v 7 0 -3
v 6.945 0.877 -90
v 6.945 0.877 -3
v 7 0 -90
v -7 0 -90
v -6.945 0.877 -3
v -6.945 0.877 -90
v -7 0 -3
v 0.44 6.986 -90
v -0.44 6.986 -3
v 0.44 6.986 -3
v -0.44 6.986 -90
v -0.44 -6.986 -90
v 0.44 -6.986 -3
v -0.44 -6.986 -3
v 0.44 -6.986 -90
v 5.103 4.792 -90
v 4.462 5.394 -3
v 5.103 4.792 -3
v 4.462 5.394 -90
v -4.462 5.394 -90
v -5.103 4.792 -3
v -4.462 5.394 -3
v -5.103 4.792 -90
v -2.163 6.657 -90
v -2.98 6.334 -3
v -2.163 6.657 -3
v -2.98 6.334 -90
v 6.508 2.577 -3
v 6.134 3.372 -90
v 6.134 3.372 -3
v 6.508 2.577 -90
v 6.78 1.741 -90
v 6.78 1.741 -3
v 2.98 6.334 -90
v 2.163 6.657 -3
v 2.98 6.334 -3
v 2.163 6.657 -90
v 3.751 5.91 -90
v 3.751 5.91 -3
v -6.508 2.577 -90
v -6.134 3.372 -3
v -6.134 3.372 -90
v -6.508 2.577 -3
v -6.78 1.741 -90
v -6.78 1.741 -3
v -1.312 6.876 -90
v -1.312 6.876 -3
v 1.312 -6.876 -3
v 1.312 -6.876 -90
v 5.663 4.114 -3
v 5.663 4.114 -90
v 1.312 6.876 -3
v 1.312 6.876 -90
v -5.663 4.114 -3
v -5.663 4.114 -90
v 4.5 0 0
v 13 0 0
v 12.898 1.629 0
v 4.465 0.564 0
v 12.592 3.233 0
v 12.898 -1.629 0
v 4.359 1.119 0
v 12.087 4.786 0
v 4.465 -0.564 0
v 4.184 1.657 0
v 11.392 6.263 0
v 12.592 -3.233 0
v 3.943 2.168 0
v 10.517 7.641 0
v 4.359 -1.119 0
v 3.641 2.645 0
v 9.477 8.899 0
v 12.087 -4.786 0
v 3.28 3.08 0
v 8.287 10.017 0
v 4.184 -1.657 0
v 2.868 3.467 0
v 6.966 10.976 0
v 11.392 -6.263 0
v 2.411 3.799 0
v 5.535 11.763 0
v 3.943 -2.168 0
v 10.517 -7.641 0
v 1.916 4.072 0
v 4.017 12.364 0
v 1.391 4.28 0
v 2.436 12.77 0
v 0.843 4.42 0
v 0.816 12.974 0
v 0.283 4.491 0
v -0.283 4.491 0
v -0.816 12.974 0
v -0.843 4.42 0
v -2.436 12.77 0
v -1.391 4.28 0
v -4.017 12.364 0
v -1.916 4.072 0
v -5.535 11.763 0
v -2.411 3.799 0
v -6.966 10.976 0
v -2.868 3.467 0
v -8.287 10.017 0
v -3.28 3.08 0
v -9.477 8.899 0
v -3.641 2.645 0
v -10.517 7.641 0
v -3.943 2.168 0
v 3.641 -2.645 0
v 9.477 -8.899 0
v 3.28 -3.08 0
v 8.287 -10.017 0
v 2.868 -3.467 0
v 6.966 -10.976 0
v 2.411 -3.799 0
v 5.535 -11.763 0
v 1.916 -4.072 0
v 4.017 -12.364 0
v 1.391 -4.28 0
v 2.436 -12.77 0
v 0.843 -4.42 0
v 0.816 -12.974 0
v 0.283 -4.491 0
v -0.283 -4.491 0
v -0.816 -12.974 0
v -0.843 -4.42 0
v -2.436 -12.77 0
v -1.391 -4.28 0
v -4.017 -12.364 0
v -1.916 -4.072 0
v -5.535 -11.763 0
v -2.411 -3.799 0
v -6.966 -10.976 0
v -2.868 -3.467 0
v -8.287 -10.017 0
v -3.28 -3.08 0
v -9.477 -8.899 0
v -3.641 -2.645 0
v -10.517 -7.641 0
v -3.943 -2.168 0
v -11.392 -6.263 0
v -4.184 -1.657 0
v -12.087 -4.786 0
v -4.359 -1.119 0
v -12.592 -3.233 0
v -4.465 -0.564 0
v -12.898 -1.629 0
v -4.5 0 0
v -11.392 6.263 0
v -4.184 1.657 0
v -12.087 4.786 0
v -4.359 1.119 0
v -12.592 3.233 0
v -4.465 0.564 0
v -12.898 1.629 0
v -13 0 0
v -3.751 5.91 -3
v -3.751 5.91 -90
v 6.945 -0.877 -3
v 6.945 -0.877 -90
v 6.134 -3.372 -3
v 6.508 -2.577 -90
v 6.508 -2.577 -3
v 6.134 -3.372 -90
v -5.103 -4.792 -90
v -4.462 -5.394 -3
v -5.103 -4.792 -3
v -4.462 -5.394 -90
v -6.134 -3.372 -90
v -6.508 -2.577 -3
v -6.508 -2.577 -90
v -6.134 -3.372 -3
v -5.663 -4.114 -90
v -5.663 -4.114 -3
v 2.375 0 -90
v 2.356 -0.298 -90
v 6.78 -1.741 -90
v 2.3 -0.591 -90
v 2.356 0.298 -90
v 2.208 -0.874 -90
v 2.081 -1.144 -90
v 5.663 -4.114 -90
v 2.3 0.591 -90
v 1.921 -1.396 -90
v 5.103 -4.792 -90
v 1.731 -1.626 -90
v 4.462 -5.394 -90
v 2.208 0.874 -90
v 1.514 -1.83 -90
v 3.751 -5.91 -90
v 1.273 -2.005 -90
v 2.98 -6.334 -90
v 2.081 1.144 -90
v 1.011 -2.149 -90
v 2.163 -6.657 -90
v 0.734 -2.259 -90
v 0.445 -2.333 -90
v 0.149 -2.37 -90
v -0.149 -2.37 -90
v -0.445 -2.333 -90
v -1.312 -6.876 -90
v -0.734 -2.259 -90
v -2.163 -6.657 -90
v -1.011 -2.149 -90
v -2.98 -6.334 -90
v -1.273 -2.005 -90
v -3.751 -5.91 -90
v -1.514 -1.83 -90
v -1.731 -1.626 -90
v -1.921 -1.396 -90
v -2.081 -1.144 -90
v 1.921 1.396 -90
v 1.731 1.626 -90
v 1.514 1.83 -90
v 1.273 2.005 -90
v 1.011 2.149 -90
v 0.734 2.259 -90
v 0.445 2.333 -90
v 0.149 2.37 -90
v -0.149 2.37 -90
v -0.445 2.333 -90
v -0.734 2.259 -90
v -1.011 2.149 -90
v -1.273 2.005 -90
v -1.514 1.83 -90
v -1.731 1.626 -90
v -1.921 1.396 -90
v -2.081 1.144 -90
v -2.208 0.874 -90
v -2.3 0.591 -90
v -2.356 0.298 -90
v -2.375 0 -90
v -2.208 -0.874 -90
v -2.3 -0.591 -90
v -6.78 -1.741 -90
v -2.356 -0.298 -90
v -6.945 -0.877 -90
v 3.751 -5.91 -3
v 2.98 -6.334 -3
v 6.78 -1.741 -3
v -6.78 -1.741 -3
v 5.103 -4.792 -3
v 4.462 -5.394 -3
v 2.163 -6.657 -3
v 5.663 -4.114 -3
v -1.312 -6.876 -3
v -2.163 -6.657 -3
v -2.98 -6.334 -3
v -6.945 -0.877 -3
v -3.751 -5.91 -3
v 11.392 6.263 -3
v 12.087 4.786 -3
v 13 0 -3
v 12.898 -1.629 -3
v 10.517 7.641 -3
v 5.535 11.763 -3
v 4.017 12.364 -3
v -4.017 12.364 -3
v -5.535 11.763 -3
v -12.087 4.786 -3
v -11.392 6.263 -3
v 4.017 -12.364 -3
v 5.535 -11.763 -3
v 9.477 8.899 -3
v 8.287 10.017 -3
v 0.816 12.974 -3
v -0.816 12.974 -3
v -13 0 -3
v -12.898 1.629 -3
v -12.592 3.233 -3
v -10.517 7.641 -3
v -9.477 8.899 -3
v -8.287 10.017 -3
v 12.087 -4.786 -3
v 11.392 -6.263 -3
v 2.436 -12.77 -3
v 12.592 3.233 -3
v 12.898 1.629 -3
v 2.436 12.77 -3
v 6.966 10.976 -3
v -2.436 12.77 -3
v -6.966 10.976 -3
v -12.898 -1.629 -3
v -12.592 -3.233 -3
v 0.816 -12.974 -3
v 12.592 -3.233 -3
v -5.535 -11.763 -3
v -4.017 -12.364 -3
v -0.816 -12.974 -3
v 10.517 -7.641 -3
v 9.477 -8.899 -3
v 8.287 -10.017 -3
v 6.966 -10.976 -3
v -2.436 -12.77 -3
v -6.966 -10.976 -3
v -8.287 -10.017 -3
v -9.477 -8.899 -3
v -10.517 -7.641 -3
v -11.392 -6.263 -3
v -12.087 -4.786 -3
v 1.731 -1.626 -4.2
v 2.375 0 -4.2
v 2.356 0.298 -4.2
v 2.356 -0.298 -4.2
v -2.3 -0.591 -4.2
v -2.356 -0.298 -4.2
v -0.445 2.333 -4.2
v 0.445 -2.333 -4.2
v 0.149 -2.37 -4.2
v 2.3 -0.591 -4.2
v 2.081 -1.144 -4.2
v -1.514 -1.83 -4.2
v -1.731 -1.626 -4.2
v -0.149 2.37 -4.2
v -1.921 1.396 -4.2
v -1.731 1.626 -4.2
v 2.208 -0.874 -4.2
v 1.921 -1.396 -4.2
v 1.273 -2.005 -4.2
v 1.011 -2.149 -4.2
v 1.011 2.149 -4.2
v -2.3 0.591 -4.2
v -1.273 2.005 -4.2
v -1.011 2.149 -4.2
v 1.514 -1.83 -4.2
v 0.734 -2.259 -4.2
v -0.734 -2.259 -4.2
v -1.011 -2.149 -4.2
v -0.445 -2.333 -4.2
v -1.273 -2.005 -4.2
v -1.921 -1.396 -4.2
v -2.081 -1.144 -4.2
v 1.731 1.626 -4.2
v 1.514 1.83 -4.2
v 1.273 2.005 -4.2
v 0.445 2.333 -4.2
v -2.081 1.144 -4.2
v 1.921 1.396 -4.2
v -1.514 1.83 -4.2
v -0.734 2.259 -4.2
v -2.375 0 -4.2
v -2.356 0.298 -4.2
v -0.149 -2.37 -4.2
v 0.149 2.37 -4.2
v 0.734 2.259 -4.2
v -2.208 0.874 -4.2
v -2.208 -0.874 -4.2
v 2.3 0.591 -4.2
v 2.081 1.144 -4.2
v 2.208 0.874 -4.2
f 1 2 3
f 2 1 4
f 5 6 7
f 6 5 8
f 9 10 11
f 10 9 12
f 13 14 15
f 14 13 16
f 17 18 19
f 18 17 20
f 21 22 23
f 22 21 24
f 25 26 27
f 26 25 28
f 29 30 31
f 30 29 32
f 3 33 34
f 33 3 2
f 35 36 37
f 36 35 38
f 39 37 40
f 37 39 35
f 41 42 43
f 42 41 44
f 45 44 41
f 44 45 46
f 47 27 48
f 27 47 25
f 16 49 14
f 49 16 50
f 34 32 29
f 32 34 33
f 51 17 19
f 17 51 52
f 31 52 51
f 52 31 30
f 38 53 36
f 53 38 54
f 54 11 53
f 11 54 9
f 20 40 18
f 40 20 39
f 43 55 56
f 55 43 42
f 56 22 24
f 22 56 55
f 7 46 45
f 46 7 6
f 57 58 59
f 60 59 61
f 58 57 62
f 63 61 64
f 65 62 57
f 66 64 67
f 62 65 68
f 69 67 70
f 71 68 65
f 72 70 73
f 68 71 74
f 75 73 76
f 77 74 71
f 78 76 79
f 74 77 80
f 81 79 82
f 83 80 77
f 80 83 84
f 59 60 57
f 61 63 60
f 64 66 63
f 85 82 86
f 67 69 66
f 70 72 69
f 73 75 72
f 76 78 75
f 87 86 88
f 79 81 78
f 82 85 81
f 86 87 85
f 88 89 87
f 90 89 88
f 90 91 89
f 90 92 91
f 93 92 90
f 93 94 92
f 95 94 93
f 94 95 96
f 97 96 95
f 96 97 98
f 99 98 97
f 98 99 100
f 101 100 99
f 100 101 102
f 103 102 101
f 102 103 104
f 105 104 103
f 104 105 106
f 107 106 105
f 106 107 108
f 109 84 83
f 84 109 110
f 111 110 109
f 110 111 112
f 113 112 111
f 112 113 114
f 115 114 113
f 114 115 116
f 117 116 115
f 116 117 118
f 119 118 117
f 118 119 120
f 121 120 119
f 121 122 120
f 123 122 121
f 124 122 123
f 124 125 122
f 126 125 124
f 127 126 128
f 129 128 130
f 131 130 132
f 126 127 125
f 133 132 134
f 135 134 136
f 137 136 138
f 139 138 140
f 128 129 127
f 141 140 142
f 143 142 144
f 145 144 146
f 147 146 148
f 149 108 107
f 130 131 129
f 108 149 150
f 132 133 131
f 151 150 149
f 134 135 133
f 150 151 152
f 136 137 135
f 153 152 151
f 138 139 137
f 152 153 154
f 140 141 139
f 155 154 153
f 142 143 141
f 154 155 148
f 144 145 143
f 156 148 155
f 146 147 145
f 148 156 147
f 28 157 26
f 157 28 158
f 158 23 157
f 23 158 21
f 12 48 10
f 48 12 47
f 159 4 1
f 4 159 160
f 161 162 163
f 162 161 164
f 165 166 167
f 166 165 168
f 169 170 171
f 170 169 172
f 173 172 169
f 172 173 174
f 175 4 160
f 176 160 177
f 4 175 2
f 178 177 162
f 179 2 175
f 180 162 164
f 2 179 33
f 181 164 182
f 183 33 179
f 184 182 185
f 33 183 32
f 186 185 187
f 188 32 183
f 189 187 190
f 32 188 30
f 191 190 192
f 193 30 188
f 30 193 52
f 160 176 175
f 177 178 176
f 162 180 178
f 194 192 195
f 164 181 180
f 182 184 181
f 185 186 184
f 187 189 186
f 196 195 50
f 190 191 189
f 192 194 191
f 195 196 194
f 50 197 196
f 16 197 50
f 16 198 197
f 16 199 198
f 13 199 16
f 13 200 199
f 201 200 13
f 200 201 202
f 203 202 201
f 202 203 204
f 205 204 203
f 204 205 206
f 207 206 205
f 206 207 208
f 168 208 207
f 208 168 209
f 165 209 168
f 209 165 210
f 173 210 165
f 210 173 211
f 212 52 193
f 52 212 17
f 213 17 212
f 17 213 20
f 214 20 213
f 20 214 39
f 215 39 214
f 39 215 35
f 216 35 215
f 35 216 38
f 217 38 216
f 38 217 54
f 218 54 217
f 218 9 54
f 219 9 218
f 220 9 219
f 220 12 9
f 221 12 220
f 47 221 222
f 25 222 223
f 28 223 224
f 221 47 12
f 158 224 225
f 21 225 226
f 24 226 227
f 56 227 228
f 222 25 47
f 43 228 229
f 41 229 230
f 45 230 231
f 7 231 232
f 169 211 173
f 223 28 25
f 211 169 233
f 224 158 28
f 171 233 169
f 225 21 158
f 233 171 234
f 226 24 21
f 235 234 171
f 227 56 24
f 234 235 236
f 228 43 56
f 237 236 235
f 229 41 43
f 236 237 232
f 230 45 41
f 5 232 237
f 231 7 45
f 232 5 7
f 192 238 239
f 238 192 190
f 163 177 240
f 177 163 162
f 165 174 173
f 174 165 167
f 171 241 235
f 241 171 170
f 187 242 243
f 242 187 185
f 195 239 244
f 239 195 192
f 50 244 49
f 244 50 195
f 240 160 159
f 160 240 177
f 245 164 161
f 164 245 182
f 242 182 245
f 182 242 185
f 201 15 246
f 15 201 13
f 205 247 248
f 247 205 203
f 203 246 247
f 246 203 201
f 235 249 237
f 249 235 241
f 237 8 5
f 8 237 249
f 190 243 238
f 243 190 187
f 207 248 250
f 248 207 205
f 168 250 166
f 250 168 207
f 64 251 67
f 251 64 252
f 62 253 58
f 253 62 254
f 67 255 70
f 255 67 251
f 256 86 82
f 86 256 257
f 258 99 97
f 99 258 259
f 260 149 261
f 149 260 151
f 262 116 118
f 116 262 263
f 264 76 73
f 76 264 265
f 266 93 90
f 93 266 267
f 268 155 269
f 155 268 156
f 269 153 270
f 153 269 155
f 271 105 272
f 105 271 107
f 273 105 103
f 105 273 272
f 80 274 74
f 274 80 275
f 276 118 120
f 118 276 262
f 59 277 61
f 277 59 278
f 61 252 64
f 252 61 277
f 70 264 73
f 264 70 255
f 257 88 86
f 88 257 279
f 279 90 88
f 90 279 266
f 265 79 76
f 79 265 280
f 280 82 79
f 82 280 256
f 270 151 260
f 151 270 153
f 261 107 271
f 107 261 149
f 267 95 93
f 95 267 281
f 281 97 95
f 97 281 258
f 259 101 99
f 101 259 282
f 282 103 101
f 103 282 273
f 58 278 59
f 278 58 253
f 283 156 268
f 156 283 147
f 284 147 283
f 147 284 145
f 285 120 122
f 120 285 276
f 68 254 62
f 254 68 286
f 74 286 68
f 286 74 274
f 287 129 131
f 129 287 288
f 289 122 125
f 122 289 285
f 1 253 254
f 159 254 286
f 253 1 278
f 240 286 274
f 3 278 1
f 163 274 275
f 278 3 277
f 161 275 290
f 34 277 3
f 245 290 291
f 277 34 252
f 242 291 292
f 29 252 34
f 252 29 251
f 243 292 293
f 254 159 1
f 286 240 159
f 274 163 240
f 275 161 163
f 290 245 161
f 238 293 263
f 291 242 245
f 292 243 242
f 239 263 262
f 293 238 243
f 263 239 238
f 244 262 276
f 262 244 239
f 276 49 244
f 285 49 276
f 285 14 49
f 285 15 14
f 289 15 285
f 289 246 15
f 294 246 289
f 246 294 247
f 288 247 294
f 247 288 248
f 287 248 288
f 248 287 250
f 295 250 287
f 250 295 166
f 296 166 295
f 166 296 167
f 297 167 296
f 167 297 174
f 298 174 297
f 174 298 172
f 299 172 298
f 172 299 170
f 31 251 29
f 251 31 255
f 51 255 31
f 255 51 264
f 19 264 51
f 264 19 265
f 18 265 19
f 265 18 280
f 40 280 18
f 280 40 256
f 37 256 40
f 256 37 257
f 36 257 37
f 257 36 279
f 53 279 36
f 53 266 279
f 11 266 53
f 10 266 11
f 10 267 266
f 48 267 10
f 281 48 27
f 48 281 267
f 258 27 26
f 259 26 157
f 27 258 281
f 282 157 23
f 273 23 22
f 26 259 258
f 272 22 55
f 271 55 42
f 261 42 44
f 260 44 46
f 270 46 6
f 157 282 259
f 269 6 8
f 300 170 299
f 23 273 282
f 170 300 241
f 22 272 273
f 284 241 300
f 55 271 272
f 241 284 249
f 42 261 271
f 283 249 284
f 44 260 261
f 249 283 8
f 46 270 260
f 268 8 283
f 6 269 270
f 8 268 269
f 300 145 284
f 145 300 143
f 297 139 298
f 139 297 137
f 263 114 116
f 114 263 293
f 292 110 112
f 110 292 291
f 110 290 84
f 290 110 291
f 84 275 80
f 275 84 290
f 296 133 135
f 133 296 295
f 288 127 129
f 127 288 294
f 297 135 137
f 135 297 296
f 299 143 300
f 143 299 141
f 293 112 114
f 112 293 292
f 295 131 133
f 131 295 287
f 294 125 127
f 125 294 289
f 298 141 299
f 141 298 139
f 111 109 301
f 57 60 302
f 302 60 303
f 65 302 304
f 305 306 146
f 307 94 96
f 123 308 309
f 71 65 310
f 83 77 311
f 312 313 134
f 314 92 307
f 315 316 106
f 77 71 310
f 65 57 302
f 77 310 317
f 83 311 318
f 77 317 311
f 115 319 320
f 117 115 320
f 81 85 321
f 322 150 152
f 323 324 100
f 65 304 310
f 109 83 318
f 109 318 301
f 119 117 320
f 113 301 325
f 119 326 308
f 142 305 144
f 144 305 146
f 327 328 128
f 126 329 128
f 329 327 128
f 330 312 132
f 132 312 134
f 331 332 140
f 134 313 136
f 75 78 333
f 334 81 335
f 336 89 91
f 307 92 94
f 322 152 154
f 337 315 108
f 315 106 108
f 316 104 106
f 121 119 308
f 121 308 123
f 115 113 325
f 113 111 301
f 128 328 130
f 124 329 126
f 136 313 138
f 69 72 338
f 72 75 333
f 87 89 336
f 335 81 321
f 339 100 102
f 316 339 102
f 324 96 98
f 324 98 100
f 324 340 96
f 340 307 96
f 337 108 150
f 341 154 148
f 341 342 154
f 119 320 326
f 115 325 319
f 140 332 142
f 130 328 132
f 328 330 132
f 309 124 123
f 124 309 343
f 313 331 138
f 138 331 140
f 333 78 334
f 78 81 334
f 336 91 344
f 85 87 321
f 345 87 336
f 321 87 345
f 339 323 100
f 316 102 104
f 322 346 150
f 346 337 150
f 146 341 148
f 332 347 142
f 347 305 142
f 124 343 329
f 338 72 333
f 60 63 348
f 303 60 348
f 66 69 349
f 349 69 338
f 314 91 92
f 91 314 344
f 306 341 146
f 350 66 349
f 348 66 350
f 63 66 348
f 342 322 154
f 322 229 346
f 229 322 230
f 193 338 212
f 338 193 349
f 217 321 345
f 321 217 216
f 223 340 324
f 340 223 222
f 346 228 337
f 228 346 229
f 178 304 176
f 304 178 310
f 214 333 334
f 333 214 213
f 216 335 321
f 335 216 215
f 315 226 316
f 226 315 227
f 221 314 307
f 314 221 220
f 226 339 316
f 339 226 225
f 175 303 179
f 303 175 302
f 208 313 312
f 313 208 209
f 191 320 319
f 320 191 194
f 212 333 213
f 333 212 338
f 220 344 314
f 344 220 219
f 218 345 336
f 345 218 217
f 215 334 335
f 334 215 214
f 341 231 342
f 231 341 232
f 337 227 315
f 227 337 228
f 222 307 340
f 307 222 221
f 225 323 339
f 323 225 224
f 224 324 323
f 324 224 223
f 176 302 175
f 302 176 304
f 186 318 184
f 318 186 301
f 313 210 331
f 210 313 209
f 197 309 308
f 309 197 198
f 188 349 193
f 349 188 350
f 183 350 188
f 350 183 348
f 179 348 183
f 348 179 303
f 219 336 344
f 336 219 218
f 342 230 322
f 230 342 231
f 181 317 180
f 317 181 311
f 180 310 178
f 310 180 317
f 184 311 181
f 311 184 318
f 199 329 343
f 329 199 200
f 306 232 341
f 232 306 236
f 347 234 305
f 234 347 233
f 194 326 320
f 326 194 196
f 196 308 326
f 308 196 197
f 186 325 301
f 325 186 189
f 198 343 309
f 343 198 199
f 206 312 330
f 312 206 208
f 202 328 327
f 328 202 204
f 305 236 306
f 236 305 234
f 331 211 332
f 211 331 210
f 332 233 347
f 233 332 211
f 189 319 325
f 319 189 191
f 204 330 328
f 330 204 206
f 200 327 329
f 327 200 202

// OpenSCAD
$fn = 50;


difference() {
	union() {
		translate(v = [0, 0, -90.0000000000]) {
			cylinder(h = 90, r = 7.0000000000);
		}
		translate(v = [0, 0, -3.0000000000]) {
			cylinder(h = 3, r = 13.0000000000);
		}
	}
	union() {
		translate(v = [0, 0, 0]) {
			rotate(a = [0, 0, 0]) {
				difference() {
					union() {
						#translate(v = [0, 0, -90.0000000000]) {
							cylinder(h = 90, r = 2.2500000000);
						}
						#translate(v = [0, 0, -4.2000000000]) {
							cylinder(h = 4.2000000000, r = 7.0000000000, r1 = 2.3750000000, r2 = 4.5000000000);
						}
						#translate(v = [0, 0, -90.0000000000]) {
							cylinder(h = 90, r = 2.3750000000);
						}
						#translate(v = [0, 0, -90.0000000000]) {
							cylinder(h = 90, r = 2.2500000000);
						}
					}
					union();
				}
			}
		}
	}
}
